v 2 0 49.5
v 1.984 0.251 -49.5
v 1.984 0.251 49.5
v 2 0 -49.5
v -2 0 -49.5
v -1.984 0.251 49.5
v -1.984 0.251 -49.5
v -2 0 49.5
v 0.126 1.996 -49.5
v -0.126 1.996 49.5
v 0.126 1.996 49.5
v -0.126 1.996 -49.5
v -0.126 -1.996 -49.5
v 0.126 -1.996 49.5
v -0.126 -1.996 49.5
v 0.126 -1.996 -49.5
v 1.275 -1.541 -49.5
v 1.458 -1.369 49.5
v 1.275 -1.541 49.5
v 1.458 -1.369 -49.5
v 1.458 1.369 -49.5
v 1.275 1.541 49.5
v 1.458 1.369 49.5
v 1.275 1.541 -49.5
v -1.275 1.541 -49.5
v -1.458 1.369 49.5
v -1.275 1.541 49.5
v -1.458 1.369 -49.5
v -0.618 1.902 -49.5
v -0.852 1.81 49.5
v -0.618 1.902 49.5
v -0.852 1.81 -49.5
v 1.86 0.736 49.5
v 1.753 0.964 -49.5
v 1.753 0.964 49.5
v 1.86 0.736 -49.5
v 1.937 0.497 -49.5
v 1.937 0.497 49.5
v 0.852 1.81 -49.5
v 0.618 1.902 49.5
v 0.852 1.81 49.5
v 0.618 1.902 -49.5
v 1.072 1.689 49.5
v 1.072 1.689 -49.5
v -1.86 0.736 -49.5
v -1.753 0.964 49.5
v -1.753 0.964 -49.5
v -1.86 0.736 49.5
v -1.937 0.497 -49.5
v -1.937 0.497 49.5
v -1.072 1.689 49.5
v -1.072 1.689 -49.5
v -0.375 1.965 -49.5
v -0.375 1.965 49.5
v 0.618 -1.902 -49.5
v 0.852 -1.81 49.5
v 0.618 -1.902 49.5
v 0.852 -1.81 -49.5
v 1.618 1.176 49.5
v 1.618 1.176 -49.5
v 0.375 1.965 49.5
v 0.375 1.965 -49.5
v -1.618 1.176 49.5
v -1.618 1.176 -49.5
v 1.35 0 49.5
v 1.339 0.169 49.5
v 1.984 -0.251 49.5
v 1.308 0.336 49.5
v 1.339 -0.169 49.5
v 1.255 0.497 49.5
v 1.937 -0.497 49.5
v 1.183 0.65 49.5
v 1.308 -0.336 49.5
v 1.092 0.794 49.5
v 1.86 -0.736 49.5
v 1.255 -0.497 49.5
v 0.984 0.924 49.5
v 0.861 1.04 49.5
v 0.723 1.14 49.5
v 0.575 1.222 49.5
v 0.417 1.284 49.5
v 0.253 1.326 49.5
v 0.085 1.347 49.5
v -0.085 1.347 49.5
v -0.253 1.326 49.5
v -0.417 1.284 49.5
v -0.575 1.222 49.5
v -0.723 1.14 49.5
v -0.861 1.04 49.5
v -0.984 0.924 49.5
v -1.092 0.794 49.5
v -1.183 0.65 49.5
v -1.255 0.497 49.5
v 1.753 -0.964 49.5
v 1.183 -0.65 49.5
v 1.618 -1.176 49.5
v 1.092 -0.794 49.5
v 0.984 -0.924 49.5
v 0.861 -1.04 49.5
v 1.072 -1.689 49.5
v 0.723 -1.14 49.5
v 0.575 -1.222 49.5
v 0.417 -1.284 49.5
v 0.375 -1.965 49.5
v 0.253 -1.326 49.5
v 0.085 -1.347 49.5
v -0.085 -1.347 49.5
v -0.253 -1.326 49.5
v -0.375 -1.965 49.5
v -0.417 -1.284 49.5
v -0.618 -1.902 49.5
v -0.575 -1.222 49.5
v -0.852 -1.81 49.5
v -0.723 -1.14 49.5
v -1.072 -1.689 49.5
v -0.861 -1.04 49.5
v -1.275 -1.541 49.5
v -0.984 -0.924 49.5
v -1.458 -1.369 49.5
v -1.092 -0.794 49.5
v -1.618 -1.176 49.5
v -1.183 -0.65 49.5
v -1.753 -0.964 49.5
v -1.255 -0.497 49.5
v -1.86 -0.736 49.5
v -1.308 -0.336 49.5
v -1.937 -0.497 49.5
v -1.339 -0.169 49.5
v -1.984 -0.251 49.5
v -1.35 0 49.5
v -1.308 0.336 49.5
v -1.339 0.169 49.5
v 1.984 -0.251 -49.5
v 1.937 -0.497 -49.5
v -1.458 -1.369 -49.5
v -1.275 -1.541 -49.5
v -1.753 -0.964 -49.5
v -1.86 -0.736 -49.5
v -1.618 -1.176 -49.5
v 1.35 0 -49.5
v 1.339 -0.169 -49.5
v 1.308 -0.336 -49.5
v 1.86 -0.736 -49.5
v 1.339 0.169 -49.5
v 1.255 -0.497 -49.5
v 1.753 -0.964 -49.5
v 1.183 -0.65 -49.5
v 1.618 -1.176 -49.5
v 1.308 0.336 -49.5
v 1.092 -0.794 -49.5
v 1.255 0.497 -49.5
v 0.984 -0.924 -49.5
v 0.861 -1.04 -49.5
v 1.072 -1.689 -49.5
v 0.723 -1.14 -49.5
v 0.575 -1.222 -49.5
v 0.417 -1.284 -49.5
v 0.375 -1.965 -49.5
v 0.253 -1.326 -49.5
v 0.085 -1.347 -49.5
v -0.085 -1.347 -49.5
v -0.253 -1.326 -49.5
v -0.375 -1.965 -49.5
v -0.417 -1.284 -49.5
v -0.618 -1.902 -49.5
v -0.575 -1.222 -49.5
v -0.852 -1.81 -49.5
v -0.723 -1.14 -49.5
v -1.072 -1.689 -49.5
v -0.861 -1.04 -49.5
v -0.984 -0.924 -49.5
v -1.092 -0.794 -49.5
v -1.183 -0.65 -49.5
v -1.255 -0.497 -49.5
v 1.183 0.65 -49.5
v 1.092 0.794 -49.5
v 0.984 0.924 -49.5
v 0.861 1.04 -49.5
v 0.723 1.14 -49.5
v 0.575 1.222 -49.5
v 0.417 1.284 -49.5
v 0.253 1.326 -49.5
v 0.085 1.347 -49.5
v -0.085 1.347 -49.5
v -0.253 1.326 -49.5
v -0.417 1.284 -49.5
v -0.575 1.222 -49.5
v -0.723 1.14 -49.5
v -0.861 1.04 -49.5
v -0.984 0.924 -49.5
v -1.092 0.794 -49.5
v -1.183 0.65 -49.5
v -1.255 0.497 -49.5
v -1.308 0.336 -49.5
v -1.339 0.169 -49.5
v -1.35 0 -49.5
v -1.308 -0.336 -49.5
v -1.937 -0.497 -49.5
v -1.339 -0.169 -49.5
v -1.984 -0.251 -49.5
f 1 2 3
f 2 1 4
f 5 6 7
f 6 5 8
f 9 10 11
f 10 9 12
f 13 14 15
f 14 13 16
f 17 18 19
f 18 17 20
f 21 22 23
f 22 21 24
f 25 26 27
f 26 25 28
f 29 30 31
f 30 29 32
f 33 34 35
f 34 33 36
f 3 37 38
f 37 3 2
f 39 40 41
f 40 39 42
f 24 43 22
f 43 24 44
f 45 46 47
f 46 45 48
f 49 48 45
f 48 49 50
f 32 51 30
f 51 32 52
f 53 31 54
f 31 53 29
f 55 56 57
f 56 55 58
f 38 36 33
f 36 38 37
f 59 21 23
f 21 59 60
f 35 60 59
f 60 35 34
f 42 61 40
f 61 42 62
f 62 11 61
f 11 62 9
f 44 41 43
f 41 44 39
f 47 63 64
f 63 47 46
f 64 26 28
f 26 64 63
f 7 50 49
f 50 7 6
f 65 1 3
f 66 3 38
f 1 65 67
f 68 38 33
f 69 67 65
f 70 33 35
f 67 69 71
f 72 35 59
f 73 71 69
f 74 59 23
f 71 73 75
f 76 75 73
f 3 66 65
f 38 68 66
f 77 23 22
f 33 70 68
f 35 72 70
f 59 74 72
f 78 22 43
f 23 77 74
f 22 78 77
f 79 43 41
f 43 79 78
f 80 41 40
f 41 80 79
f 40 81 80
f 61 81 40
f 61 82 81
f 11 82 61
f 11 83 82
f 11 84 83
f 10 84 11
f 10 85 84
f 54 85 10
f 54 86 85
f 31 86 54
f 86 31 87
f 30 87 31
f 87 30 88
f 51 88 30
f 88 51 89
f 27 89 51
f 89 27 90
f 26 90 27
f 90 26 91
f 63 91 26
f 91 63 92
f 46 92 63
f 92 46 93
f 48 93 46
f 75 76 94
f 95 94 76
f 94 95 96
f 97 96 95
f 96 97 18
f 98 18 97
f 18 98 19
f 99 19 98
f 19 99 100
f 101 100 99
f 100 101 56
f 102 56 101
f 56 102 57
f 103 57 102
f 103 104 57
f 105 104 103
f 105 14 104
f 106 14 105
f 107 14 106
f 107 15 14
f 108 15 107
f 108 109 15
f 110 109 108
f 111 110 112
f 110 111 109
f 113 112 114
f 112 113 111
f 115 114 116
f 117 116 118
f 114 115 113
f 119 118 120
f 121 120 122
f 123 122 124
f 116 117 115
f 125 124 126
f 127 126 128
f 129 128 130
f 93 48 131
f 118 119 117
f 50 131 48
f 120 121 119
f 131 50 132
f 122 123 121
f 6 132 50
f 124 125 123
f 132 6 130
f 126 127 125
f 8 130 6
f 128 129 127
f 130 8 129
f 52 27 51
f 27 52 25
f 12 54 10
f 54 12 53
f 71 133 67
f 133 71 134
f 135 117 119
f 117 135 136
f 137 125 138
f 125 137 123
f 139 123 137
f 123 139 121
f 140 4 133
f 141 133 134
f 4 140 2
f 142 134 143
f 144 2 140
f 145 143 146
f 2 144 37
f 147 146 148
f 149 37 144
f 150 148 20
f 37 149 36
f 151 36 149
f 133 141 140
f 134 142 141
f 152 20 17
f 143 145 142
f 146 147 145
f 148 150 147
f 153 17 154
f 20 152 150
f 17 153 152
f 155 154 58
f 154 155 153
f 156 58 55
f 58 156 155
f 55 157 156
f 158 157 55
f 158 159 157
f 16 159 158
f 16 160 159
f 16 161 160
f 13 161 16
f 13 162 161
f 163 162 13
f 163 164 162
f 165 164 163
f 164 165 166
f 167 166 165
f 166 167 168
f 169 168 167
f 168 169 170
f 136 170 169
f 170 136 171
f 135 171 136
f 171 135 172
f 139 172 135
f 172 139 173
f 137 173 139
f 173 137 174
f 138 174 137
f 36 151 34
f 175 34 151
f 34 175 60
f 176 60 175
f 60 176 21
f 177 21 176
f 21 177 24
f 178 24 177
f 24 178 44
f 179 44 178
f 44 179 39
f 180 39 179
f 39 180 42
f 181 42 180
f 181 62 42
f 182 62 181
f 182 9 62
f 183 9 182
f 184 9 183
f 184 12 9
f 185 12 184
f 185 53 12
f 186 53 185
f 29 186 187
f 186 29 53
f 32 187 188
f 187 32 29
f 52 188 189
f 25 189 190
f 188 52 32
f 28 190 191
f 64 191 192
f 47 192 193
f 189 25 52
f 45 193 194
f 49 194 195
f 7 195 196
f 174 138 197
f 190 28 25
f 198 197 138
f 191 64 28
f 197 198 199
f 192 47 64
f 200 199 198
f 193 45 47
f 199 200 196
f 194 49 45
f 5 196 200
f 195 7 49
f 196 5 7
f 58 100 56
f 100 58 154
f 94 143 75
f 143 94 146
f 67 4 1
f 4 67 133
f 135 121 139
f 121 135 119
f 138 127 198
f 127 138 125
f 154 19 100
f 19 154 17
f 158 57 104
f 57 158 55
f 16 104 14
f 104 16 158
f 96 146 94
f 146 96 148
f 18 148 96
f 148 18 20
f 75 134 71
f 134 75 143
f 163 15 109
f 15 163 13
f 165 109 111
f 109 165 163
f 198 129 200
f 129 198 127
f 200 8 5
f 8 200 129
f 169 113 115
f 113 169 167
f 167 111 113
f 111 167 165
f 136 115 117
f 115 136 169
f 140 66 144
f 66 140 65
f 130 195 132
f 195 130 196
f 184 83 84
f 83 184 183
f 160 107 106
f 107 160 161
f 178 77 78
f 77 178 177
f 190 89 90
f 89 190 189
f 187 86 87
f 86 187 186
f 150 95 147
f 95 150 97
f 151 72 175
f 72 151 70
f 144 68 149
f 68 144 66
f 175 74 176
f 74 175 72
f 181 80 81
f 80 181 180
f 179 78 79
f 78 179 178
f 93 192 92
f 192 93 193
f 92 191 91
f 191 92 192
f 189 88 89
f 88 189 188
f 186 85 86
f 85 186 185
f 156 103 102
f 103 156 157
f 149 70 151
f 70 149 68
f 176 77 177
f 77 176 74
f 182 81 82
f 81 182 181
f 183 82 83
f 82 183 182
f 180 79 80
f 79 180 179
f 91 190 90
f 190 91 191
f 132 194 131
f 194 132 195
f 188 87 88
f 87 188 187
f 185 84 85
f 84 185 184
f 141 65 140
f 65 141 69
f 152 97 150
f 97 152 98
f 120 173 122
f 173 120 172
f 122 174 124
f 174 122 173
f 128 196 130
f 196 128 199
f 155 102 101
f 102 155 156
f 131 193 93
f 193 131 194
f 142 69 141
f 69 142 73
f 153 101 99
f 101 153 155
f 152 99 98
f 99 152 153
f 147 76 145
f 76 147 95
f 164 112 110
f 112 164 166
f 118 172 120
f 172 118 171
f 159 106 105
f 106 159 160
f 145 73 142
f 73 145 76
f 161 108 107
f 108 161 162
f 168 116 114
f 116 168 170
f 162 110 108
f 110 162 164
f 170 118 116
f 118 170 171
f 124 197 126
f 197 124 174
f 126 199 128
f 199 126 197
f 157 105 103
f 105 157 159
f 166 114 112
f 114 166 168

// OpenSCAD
$fn = 50;


difference() {
	union() {
		translate(v = [0, 0, -49.5000000000]) {
			cylinder(h = 99, r = 2.0000000000);
		}
	}
	union() {
		translate(v = [0, 0, -100.0000000000]) {
			cylinder(h = 200, r = 1.3500000000);
		}
	}
}
